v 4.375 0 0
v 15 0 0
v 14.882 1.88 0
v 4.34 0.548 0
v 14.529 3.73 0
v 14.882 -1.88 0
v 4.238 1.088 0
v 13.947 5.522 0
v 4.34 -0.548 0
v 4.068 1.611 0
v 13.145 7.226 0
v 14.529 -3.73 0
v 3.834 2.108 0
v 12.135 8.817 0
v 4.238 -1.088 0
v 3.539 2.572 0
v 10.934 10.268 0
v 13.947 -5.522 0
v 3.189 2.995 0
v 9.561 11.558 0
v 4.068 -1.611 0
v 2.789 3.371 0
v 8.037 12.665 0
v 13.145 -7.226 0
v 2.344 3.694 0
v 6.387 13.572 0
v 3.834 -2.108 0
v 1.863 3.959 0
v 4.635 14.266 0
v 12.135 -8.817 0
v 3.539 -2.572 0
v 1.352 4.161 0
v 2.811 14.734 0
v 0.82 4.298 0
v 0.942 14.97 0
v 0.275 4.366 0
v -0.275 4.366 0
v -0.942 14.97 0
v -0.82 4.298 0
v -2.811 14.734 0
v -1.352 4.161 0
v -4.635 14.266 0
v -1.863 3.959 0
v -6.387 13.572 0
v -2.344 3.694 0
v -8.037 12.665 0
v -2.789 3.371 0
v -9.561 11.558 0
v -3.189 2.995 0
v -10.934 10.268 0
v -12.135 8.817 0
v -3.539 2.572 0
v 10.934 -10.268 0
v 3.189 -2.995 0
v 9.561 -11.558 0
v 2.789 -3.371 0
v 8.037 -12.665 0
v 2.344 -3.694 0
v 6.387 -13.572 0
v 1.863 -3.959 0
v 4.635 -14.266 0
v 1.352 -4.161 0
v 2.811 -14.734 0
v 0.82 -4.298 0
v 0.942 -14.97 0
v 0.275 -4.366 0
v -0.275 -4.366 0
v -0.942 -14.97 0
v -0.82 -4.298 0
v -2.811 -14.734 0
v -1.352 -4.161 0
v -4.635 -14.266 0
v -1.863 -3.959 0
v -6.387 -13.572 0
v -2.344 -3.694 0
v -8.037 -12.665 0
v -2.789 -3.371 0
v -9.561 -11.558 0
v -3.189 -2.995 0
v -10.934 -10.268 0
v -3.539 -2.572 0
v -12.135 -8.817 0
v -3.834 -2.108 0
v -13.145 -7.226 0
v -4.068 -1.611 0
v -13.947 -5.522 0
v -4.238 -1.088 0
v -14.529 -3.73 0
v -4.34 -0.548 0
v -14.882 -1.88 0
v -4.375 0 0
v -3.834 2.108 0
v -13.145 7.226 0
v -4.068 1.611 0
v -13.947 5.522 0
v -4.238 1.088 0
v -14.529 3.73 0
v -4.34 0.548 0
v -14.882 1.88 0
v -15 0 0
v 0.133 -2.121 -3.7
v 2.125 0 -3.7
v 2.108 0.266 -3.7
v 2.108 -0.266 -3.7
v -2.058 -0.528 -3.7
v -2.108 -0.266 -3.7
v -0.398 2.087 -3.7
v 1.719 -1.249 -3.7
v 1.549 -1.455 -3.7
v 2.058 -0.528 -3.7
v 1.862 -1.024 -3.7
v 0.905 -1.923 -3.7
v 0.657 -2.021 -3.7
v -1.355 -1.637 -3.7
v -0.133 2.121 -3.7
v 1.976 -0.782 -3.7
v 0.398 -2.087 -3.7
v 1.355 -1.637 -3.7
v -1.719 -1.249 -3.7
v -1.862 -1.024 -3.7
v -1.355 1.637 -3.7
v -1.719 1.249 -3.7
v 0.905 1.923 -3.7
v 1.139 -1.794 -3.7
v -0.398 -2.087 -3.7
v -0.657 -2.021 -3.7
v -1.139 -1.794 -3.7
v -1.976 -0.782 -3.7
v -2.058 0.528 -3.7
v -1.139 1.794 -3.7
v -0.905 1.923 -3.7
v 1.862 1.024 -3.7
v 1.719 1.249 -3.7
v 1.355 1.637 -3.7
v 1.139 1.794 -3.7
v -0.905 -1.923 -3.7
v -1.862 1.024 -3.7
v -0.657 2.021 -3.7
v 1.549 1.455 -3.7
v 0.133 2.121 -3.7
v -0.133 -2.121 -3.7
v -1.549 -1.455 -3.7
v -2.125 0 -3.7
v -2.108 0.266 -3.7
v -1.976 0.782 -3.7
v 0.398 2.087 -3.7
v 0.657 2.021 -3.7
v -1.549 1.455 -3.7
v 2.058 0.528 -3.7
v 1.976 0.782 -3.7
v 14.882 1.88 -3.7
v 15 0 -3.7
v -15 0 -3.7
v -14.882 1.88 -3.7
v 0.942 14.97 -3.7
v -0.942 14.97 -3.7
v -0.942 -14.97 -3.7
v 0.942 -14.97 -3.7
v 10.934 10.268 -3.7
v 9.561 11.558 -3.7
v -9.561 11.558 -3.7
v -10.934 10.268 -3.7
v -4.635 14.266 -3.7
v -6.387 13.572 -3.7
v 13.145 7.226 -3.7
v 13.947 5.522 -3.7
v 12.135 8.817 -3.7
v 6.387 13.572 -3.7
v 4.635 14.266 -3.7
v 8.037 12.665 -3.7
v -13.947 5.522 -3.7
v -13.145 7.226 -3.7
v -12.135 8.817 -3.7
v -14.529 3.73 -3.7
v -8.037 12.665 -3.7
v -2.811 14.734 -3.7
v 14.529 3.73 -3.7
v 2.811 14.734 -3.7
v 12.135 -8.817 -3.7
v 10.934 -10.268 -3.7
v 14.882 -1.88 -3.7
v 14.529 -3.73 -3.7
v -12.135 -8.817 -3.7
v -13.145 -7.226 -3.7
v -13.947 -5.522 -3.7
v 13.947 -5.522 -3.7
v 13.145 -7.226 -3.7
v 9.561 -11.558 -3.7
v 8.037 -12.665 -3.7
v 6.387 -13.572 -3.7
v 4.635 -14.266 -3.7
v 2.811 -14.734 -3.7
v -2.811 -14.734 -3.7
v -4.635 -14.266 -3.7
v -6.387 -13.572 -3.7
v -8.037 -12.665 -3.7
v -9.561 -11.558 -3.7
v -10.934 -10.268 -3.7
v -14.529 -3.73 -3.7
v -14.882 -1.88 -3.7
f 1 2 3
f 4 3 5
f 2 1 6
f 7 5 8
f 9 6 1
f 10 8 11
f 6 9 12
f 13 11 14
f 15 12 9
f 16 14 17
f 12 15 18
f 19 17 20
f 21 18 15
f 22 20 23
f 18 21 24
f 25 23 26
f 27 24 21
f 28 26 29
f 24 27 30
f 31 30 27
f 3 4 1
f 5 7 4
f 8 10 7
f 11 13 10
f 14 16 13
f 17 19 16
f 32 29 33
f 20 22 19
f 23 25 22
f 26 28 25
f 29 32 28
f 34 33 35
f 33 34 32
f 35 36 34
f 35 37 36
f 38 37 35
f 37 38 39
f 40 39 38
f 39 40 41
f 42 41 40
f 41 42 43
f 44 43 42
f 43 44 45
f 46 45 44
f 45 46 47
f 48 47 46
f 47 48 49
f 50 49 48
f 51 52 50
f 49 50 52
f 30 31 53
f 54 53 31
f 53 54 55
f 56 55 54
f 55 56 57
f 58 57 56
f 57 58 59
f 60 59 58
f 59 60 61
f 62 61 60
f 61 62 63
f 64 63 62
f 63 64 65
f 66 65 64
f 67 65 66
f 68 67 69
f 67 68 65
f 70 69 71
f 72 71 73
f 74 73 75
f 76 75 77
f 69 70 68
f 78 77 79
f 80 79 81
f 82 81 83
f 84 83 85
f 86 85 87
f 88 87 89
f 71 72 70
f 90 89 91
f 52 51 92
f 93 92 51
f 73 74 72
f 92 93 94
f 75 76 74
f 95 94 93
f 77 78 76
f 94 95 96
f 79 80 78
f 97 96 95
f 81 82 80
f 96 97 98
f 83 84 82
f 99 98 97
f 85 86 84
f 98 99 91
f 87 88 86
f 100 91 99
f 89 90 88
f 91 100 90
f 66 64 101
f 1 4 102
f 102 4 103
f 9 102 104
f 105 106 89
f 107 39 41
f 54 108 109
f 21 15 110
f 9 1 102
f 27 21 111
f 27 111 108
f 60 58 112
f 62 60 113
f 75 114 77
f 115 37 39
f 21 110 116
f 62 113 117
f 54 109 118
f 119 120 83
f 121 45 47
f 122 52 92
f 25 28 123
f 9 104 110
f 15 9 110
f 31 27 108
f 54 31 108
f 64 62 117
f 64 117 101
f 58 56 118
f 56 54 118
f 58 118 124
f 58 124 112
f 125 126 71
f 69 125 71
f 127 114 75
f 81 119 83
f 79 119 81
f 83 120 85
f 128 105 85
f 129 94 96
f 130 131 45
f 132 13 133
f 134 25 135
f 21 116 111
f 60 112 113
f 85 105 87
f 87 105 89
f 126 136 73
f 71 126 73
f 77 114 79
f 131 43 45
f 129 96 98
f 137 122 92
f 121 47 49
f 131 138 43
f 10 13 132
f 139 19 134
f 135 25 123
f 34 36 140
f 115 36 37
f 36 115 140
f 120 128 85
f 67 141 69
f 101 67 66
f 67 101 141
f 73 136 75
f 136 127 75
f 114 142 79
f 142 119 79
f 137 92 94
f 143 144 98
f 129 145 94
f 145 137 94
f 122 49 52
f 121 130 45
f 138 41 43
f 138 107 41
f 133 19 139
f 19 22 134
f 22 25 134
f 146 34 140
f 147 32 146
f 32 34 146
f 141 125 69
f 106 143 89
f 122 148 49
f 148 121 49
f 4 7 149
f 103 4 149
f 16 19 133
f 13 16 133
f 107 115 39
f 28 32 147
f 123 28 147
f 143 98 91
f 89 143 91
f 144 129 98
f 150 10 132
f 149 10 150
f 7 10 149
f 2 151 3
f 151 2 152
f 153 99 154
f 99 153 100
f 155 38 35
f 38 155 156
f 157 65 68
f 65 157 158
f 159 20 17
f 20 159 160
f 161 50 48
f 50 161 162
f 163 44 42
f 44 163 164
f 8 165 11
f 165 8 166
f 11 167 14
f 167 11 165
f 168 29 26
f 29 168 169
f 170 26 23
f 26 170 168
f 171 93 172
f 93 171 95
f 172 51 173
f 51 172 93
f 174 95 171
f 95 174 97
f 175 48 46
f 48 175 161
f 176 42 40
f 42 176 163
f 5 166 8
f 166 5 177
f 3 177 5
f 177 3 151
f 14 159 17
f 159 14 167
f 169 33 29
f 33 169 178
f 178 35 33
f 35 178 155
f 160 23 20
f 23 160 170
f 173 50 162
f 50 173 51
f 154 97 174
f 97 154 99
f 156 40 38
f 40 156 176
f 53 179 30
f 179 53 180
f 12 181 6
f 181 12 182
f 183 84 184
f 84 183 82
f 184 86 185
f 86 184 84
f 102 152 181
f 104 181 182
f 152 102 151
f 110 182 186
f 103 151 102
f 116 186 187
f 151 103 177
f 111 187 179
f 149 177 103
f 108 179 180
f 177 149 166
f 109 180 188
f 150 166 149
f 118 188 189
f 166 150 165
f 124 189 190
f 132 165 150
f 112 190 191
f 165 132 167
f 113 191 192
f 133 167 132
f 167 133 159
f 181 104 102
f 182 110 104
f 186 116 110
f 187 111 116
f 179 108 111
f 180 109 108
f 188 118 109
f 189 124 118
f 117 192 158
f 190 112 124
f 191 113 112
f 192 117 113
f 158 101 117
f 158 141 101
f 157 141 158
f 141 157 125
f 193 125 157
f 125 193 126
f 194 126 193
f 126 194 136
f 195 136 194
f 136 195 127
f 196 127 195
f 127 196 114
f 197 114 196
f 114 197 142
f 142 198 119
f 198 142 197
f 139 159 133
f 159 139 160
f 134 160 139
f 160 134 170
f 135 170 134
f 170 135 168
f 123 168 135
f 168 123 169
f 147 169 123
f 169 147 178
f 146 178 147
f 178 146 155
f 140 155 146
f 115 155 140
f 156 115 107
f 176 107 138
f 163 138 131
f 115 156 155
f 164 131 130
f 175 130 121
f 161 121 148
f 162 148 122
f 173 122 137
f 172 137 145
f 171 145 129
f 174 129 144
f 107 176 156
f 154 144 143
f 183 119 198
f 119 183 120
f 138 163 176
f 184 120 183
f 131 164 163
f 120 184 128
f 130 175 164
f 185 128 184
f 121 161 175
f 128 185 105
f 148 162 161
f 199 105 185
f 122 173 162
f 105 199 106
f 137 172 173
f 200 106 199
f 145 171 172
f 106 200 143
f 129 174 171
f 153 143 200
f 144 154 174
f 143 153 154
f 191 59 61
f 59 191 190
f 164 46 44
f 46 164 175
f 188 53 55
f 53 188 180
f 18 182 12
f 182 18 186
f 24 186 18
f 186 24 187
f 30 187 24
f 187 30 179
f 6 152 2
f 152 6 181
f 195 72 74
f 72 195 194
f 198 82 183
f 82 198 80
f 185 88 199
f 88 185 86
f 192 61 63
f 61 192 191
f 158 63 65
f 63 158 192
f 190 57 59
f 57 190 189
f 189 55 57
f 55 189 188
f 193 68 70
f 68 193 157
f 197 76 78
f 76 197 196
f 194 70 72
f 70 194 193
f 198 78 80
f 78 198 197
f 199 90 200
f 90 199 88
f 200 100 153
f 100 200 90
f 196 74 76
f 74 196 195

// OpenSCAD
$fn = 50;


difference() {
	union() {
		translate(v = [0, 0, -3.7000000000]) {
			cylinder(h = 3.7000000000, r = 15.0000000000);
		}
	}
	union() {
		translate(v = [0, 0, 0]) {
			rotate(a = [0, 0, 0]) {
				difference() {
					union() {
						translate(v = [0, 0, -6.7000000000]) {
							cylinder(h = 6.7000000000, r = 2.0000000000);
						}
						translate(v = [0, 0, -3.7000000000]) {
							cylinder(h = 3.7000000000, r1 = 2.1250000000, r2 = 4.3750000000);
						}
						translate(v = [0, 0, -6.7000000000]) {
							cylinder(h = 6.7000000000, r = 2.1250000000);
						}
						translate(v = [0, 0, -6.7000000000]) {
							cylinder(h = 6.7000000000, r = 2.0000000000);
						}
					}
					union();
				}
			}
		}
	}
}
